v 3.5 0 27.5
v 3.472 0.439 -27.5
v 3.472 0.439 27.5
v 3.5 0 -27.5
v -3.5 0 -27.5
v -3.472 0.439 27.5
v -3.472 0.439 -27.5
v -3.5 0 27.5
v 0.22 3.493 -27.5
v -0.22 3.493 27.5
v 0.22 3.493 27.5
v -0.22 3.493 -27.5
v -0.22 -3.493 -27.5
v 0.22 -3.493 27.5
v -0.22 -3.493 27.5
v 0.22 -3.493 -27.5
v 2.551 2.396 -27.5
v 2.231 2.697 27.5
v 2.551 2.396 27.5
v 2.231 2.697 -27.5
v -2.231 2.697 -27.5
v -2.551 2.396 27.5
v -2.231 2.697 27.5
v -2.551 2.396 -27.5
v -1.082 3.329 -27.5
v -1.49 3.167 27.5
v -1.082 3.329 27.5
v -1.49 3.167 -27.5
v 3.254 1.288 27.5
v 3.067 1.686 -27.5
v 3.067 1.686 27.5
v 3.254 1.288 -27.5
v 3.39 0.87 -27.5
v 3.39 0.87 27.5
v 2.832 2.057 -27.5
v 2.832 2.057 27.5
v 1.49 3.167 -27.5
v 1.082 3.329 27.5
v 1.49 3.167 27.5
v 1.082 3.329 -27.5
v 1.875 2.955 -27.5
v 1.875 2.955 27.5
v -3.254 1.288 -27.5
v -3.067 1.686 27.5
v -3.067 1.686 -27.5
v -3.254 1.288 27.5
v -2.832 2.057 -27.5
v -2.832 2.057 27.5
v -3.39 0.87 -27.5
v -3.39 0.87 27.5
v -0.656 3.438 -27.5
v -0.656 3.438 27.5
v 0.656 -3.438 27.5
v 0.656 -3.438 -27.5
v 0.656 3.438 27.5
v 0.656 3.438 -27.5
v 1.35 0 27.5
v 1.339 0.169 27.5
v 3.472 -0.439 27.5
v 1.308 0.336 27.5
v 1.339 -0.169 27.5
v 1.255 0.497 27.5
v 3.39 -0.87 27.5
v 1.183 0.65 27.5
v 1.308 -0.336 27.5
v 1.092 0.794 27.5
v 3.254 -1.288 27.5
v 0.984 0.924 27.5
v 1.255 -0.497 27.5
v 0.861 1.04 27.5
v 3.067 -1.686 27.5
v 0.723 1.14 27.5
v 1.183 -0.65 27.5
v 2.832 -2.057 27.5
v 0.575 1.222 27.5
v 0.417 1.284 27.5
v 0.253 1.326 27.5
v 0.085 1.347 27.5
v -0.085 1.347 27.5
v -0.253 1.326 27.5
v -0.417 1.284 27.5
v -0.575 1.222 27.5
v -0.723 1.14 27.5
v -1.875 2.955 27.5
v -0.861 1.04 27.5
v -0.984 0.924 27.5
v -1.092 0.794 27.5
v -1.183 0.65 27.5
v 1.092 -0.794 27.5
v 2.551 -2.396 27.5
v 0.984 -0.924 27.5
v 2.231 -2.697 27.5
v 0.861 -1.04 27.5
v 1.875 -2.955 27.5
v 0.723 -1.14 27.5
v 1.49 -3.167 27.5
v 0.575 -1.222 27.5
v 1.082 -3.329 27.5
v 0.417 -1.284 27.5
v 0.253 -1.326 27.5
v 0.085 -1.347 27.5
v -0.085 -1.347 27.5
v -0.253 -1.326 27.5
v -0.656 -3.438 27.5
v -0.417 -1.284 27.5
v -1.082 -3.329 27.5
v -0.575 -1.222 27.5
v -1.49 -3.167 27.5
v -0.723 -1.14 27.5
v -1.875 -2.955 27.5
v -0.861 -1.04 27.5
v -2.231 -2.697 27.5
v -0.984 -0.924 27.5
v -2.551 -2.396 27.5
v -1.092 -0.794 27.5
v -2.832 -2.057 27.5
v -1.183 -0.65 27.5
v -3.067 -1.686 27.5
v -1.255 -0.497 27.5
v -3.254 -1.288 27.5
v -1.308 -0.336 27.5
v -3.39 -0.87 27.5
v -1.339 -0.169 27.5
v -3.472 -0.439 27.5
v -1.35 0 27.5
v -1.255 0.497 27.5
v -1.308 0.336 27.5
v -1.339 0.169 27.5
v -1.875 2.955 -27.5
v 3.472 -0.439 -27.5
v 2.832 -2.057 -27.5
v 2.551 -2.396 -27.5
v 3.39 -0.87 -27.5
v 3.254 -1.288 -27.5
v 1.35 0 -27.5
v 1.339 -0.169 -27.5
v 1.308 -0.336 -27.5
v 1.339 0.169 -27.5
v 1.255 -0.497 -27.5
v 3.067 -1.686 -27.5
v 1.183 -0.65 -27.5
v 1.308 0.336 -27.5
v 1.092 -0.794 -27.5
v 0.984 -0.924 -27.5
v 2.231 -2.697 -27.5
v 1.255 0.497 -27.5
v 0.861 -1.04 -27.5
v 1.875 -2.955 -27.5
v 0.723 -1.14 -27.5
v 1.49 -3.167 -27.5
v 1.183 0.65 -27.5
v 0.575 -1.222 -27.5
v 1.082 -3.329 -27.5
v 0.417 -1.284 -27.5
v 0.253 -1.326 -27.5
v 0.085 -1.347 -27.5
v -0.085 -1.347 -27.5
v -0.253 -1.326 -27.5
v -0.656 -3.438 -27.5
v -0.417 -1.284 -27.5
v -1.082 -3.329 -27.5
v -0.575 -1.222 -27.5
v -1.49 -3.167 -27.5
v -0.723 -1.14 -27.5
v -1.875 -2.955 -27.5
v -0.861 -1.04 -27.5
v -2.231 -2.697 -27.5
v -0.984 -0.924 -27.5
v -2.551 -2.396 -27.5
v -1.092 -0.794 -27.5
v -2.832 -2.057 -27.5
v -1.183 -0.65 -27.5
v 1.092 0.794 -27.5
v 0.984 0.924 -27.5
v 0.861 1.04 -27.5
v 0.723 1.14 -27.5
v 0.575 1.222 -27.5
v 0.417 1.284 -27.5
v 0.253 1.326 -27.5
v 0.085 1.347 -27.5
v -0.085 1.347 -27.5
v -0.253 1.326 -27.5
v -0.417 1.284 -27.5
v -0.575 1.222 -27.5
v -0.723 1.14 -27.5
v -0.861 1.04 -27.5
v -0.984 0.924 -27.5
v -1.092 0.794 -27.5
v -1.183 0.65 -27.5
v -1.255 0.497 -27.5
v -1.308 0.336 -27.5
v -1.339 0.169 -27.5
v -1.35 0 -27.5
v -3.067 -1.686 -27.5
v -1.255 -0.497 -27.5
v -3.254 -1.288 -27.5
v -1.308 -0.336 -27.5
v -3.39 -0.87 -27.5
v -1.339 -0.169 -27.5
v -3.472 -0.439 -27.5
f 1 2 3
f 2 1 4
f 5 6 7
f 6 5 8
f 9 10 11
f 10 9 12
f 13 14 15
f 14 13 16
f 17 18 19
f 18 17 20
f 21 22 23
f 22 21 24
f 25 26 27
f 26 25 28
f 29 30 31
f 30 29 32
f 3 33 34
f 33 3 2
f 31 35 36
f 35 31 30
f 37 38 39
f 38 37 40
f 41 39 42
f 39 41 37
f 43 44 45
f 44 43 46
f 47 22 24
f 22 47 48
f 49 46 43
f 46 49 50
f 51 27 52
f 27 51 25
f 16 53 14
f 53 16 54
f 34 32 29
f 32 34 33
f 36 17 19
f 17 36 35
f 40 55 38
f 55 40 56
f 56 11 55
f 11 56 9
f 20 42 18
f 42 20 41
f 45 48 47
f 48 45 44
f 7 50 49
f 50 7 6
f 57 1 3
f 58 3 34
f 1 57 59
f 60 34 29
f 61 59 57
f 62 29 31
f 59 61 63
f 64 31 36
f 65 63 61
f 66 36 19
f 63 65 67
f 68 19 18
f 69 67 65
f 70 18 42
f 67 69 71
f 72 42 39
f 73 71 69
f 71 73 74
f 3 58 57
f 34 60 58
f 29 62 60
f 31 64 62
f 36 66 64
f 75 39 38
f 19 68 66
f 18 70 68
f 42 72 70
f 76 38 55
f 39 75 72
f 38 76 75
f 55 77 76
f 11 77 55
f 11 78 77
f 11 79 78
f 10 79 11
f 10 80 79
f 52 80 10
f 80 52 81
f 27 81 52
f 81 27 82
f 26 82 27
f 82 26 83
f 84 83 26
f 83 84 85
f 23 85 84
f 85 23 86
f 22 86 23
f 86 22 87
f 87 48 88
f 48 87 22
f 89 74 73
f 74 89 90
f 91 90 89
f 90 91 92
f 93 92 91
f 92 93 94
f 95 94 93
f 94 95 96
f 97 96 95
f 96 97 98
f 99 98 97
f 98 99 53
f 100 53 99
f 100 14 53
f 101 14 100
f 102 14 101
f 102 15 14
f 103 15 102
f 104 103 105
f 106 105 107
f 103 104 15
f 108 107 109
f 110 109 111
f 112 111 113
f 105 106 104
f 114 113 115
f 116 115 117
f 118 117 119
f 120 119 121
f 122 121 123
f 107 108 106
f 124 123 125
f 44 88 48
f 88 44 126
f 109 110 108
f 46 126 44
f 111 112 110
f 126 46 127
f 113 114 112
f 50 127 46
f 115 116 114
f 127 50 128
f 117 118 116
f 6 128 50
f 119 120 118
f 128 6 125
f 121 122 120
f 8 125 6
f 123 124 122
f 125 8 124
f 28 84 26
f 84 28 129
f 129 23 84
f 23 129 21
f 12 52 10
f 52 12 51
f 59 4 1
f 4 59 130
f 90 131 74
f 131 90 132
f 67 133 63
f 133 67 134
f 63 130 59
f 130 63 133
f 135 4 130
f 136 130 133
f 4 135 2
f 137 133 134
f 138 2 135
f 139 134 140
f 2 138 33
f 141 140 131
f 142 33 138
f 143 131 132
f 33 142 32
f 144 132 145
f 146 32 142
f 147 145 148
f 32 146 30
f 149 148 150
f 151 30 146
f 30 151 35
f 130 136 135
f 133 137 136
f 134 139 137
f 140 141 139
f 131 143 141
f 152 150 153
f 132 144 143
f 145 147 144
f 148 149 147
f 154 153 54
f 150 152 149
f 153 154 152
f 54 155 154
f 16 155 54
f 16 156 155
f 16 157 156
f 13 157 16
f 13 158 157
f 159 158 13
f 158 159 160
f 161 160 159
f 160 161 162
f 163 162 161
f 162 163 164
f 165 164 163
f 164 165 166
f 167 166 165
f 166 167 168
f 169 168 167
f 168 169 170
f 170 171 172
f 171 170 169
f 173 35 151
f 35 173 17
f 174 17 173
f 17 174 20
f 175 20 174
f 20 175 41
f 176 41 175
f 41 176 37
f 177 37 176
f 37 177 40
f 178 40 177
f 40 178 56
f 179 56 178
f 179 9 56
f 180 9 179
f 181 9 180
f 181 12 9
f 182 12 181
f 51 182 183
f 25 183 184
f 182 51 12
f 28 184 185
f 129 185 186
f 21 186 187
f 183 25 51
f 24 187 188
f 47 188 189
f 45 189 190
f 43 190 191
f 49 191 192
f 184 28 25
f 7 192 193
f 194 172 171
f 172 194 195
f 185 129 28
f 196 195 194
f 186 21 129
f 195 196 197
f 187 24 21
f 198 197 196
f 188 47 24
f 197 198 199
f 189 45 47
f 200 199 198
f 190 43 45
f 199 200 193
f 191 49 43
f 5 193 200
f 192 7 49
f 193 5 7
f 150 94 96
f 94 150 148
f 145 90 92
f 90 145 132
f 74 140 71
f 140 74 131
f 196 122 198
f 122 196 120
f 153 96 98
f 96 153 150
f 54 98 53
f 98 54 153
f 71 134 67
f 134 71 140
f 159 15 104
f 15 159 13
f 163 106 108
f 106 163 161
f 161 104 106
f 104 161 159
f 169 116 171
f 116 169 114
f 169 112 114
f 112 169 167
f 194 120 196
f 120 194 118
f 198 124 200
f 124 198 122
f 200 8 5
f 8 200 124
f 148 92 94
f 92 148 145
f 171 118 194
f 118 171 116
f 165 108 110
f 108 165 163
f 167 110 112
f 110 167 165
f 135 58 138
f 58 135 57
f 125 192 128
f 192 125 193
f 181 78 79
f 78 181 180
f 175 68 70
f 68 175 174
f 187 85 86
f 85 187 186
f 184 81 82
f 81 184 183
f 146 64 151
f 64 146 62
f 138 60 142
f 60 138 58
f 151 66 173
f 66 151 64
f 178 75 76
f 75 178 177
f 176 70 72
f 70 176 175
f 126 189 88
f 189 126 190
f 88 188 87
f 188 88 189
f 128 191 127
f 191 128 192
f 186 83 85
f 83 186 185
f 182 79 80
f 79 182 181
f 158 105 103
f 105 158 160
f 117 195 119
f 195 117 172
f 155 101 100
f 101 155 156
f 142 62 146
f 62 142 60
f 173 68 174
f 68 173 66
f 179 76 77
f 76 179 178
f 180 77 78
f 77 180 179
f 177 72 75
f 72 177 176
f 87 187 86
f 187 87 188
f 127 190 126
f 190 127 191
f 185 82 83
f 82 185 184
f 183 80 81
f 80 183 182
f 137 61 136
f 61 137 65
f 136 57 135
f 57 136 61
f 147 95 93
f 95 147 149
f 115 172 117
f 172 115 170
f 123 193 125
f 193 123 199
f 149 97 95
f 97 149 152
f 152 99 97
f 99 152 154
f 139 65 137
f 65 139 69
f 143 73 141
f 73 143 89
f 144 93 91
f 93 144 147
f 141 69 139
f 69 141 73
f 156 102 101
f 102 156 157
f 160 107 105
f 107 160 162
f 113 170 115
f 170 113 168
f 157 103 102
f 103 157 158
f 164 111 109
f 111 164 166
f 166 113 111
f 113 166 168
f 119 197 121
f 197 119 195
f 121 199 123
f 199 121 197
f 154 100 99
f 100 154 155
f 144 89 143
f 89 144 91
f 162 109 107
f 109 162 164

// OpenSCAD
$fn = 50;


difference() {
	union() {
		translate(v = [0, 0, -27.5000000000]) {
			cylinder(h = 55, r = 3.5000000000);
		}
	}
	union() {
		translate(v = [0, 0, -100.0000000000]) {
			cylinder(h = 200, r = 1.3500000000);
		}
	}
}
